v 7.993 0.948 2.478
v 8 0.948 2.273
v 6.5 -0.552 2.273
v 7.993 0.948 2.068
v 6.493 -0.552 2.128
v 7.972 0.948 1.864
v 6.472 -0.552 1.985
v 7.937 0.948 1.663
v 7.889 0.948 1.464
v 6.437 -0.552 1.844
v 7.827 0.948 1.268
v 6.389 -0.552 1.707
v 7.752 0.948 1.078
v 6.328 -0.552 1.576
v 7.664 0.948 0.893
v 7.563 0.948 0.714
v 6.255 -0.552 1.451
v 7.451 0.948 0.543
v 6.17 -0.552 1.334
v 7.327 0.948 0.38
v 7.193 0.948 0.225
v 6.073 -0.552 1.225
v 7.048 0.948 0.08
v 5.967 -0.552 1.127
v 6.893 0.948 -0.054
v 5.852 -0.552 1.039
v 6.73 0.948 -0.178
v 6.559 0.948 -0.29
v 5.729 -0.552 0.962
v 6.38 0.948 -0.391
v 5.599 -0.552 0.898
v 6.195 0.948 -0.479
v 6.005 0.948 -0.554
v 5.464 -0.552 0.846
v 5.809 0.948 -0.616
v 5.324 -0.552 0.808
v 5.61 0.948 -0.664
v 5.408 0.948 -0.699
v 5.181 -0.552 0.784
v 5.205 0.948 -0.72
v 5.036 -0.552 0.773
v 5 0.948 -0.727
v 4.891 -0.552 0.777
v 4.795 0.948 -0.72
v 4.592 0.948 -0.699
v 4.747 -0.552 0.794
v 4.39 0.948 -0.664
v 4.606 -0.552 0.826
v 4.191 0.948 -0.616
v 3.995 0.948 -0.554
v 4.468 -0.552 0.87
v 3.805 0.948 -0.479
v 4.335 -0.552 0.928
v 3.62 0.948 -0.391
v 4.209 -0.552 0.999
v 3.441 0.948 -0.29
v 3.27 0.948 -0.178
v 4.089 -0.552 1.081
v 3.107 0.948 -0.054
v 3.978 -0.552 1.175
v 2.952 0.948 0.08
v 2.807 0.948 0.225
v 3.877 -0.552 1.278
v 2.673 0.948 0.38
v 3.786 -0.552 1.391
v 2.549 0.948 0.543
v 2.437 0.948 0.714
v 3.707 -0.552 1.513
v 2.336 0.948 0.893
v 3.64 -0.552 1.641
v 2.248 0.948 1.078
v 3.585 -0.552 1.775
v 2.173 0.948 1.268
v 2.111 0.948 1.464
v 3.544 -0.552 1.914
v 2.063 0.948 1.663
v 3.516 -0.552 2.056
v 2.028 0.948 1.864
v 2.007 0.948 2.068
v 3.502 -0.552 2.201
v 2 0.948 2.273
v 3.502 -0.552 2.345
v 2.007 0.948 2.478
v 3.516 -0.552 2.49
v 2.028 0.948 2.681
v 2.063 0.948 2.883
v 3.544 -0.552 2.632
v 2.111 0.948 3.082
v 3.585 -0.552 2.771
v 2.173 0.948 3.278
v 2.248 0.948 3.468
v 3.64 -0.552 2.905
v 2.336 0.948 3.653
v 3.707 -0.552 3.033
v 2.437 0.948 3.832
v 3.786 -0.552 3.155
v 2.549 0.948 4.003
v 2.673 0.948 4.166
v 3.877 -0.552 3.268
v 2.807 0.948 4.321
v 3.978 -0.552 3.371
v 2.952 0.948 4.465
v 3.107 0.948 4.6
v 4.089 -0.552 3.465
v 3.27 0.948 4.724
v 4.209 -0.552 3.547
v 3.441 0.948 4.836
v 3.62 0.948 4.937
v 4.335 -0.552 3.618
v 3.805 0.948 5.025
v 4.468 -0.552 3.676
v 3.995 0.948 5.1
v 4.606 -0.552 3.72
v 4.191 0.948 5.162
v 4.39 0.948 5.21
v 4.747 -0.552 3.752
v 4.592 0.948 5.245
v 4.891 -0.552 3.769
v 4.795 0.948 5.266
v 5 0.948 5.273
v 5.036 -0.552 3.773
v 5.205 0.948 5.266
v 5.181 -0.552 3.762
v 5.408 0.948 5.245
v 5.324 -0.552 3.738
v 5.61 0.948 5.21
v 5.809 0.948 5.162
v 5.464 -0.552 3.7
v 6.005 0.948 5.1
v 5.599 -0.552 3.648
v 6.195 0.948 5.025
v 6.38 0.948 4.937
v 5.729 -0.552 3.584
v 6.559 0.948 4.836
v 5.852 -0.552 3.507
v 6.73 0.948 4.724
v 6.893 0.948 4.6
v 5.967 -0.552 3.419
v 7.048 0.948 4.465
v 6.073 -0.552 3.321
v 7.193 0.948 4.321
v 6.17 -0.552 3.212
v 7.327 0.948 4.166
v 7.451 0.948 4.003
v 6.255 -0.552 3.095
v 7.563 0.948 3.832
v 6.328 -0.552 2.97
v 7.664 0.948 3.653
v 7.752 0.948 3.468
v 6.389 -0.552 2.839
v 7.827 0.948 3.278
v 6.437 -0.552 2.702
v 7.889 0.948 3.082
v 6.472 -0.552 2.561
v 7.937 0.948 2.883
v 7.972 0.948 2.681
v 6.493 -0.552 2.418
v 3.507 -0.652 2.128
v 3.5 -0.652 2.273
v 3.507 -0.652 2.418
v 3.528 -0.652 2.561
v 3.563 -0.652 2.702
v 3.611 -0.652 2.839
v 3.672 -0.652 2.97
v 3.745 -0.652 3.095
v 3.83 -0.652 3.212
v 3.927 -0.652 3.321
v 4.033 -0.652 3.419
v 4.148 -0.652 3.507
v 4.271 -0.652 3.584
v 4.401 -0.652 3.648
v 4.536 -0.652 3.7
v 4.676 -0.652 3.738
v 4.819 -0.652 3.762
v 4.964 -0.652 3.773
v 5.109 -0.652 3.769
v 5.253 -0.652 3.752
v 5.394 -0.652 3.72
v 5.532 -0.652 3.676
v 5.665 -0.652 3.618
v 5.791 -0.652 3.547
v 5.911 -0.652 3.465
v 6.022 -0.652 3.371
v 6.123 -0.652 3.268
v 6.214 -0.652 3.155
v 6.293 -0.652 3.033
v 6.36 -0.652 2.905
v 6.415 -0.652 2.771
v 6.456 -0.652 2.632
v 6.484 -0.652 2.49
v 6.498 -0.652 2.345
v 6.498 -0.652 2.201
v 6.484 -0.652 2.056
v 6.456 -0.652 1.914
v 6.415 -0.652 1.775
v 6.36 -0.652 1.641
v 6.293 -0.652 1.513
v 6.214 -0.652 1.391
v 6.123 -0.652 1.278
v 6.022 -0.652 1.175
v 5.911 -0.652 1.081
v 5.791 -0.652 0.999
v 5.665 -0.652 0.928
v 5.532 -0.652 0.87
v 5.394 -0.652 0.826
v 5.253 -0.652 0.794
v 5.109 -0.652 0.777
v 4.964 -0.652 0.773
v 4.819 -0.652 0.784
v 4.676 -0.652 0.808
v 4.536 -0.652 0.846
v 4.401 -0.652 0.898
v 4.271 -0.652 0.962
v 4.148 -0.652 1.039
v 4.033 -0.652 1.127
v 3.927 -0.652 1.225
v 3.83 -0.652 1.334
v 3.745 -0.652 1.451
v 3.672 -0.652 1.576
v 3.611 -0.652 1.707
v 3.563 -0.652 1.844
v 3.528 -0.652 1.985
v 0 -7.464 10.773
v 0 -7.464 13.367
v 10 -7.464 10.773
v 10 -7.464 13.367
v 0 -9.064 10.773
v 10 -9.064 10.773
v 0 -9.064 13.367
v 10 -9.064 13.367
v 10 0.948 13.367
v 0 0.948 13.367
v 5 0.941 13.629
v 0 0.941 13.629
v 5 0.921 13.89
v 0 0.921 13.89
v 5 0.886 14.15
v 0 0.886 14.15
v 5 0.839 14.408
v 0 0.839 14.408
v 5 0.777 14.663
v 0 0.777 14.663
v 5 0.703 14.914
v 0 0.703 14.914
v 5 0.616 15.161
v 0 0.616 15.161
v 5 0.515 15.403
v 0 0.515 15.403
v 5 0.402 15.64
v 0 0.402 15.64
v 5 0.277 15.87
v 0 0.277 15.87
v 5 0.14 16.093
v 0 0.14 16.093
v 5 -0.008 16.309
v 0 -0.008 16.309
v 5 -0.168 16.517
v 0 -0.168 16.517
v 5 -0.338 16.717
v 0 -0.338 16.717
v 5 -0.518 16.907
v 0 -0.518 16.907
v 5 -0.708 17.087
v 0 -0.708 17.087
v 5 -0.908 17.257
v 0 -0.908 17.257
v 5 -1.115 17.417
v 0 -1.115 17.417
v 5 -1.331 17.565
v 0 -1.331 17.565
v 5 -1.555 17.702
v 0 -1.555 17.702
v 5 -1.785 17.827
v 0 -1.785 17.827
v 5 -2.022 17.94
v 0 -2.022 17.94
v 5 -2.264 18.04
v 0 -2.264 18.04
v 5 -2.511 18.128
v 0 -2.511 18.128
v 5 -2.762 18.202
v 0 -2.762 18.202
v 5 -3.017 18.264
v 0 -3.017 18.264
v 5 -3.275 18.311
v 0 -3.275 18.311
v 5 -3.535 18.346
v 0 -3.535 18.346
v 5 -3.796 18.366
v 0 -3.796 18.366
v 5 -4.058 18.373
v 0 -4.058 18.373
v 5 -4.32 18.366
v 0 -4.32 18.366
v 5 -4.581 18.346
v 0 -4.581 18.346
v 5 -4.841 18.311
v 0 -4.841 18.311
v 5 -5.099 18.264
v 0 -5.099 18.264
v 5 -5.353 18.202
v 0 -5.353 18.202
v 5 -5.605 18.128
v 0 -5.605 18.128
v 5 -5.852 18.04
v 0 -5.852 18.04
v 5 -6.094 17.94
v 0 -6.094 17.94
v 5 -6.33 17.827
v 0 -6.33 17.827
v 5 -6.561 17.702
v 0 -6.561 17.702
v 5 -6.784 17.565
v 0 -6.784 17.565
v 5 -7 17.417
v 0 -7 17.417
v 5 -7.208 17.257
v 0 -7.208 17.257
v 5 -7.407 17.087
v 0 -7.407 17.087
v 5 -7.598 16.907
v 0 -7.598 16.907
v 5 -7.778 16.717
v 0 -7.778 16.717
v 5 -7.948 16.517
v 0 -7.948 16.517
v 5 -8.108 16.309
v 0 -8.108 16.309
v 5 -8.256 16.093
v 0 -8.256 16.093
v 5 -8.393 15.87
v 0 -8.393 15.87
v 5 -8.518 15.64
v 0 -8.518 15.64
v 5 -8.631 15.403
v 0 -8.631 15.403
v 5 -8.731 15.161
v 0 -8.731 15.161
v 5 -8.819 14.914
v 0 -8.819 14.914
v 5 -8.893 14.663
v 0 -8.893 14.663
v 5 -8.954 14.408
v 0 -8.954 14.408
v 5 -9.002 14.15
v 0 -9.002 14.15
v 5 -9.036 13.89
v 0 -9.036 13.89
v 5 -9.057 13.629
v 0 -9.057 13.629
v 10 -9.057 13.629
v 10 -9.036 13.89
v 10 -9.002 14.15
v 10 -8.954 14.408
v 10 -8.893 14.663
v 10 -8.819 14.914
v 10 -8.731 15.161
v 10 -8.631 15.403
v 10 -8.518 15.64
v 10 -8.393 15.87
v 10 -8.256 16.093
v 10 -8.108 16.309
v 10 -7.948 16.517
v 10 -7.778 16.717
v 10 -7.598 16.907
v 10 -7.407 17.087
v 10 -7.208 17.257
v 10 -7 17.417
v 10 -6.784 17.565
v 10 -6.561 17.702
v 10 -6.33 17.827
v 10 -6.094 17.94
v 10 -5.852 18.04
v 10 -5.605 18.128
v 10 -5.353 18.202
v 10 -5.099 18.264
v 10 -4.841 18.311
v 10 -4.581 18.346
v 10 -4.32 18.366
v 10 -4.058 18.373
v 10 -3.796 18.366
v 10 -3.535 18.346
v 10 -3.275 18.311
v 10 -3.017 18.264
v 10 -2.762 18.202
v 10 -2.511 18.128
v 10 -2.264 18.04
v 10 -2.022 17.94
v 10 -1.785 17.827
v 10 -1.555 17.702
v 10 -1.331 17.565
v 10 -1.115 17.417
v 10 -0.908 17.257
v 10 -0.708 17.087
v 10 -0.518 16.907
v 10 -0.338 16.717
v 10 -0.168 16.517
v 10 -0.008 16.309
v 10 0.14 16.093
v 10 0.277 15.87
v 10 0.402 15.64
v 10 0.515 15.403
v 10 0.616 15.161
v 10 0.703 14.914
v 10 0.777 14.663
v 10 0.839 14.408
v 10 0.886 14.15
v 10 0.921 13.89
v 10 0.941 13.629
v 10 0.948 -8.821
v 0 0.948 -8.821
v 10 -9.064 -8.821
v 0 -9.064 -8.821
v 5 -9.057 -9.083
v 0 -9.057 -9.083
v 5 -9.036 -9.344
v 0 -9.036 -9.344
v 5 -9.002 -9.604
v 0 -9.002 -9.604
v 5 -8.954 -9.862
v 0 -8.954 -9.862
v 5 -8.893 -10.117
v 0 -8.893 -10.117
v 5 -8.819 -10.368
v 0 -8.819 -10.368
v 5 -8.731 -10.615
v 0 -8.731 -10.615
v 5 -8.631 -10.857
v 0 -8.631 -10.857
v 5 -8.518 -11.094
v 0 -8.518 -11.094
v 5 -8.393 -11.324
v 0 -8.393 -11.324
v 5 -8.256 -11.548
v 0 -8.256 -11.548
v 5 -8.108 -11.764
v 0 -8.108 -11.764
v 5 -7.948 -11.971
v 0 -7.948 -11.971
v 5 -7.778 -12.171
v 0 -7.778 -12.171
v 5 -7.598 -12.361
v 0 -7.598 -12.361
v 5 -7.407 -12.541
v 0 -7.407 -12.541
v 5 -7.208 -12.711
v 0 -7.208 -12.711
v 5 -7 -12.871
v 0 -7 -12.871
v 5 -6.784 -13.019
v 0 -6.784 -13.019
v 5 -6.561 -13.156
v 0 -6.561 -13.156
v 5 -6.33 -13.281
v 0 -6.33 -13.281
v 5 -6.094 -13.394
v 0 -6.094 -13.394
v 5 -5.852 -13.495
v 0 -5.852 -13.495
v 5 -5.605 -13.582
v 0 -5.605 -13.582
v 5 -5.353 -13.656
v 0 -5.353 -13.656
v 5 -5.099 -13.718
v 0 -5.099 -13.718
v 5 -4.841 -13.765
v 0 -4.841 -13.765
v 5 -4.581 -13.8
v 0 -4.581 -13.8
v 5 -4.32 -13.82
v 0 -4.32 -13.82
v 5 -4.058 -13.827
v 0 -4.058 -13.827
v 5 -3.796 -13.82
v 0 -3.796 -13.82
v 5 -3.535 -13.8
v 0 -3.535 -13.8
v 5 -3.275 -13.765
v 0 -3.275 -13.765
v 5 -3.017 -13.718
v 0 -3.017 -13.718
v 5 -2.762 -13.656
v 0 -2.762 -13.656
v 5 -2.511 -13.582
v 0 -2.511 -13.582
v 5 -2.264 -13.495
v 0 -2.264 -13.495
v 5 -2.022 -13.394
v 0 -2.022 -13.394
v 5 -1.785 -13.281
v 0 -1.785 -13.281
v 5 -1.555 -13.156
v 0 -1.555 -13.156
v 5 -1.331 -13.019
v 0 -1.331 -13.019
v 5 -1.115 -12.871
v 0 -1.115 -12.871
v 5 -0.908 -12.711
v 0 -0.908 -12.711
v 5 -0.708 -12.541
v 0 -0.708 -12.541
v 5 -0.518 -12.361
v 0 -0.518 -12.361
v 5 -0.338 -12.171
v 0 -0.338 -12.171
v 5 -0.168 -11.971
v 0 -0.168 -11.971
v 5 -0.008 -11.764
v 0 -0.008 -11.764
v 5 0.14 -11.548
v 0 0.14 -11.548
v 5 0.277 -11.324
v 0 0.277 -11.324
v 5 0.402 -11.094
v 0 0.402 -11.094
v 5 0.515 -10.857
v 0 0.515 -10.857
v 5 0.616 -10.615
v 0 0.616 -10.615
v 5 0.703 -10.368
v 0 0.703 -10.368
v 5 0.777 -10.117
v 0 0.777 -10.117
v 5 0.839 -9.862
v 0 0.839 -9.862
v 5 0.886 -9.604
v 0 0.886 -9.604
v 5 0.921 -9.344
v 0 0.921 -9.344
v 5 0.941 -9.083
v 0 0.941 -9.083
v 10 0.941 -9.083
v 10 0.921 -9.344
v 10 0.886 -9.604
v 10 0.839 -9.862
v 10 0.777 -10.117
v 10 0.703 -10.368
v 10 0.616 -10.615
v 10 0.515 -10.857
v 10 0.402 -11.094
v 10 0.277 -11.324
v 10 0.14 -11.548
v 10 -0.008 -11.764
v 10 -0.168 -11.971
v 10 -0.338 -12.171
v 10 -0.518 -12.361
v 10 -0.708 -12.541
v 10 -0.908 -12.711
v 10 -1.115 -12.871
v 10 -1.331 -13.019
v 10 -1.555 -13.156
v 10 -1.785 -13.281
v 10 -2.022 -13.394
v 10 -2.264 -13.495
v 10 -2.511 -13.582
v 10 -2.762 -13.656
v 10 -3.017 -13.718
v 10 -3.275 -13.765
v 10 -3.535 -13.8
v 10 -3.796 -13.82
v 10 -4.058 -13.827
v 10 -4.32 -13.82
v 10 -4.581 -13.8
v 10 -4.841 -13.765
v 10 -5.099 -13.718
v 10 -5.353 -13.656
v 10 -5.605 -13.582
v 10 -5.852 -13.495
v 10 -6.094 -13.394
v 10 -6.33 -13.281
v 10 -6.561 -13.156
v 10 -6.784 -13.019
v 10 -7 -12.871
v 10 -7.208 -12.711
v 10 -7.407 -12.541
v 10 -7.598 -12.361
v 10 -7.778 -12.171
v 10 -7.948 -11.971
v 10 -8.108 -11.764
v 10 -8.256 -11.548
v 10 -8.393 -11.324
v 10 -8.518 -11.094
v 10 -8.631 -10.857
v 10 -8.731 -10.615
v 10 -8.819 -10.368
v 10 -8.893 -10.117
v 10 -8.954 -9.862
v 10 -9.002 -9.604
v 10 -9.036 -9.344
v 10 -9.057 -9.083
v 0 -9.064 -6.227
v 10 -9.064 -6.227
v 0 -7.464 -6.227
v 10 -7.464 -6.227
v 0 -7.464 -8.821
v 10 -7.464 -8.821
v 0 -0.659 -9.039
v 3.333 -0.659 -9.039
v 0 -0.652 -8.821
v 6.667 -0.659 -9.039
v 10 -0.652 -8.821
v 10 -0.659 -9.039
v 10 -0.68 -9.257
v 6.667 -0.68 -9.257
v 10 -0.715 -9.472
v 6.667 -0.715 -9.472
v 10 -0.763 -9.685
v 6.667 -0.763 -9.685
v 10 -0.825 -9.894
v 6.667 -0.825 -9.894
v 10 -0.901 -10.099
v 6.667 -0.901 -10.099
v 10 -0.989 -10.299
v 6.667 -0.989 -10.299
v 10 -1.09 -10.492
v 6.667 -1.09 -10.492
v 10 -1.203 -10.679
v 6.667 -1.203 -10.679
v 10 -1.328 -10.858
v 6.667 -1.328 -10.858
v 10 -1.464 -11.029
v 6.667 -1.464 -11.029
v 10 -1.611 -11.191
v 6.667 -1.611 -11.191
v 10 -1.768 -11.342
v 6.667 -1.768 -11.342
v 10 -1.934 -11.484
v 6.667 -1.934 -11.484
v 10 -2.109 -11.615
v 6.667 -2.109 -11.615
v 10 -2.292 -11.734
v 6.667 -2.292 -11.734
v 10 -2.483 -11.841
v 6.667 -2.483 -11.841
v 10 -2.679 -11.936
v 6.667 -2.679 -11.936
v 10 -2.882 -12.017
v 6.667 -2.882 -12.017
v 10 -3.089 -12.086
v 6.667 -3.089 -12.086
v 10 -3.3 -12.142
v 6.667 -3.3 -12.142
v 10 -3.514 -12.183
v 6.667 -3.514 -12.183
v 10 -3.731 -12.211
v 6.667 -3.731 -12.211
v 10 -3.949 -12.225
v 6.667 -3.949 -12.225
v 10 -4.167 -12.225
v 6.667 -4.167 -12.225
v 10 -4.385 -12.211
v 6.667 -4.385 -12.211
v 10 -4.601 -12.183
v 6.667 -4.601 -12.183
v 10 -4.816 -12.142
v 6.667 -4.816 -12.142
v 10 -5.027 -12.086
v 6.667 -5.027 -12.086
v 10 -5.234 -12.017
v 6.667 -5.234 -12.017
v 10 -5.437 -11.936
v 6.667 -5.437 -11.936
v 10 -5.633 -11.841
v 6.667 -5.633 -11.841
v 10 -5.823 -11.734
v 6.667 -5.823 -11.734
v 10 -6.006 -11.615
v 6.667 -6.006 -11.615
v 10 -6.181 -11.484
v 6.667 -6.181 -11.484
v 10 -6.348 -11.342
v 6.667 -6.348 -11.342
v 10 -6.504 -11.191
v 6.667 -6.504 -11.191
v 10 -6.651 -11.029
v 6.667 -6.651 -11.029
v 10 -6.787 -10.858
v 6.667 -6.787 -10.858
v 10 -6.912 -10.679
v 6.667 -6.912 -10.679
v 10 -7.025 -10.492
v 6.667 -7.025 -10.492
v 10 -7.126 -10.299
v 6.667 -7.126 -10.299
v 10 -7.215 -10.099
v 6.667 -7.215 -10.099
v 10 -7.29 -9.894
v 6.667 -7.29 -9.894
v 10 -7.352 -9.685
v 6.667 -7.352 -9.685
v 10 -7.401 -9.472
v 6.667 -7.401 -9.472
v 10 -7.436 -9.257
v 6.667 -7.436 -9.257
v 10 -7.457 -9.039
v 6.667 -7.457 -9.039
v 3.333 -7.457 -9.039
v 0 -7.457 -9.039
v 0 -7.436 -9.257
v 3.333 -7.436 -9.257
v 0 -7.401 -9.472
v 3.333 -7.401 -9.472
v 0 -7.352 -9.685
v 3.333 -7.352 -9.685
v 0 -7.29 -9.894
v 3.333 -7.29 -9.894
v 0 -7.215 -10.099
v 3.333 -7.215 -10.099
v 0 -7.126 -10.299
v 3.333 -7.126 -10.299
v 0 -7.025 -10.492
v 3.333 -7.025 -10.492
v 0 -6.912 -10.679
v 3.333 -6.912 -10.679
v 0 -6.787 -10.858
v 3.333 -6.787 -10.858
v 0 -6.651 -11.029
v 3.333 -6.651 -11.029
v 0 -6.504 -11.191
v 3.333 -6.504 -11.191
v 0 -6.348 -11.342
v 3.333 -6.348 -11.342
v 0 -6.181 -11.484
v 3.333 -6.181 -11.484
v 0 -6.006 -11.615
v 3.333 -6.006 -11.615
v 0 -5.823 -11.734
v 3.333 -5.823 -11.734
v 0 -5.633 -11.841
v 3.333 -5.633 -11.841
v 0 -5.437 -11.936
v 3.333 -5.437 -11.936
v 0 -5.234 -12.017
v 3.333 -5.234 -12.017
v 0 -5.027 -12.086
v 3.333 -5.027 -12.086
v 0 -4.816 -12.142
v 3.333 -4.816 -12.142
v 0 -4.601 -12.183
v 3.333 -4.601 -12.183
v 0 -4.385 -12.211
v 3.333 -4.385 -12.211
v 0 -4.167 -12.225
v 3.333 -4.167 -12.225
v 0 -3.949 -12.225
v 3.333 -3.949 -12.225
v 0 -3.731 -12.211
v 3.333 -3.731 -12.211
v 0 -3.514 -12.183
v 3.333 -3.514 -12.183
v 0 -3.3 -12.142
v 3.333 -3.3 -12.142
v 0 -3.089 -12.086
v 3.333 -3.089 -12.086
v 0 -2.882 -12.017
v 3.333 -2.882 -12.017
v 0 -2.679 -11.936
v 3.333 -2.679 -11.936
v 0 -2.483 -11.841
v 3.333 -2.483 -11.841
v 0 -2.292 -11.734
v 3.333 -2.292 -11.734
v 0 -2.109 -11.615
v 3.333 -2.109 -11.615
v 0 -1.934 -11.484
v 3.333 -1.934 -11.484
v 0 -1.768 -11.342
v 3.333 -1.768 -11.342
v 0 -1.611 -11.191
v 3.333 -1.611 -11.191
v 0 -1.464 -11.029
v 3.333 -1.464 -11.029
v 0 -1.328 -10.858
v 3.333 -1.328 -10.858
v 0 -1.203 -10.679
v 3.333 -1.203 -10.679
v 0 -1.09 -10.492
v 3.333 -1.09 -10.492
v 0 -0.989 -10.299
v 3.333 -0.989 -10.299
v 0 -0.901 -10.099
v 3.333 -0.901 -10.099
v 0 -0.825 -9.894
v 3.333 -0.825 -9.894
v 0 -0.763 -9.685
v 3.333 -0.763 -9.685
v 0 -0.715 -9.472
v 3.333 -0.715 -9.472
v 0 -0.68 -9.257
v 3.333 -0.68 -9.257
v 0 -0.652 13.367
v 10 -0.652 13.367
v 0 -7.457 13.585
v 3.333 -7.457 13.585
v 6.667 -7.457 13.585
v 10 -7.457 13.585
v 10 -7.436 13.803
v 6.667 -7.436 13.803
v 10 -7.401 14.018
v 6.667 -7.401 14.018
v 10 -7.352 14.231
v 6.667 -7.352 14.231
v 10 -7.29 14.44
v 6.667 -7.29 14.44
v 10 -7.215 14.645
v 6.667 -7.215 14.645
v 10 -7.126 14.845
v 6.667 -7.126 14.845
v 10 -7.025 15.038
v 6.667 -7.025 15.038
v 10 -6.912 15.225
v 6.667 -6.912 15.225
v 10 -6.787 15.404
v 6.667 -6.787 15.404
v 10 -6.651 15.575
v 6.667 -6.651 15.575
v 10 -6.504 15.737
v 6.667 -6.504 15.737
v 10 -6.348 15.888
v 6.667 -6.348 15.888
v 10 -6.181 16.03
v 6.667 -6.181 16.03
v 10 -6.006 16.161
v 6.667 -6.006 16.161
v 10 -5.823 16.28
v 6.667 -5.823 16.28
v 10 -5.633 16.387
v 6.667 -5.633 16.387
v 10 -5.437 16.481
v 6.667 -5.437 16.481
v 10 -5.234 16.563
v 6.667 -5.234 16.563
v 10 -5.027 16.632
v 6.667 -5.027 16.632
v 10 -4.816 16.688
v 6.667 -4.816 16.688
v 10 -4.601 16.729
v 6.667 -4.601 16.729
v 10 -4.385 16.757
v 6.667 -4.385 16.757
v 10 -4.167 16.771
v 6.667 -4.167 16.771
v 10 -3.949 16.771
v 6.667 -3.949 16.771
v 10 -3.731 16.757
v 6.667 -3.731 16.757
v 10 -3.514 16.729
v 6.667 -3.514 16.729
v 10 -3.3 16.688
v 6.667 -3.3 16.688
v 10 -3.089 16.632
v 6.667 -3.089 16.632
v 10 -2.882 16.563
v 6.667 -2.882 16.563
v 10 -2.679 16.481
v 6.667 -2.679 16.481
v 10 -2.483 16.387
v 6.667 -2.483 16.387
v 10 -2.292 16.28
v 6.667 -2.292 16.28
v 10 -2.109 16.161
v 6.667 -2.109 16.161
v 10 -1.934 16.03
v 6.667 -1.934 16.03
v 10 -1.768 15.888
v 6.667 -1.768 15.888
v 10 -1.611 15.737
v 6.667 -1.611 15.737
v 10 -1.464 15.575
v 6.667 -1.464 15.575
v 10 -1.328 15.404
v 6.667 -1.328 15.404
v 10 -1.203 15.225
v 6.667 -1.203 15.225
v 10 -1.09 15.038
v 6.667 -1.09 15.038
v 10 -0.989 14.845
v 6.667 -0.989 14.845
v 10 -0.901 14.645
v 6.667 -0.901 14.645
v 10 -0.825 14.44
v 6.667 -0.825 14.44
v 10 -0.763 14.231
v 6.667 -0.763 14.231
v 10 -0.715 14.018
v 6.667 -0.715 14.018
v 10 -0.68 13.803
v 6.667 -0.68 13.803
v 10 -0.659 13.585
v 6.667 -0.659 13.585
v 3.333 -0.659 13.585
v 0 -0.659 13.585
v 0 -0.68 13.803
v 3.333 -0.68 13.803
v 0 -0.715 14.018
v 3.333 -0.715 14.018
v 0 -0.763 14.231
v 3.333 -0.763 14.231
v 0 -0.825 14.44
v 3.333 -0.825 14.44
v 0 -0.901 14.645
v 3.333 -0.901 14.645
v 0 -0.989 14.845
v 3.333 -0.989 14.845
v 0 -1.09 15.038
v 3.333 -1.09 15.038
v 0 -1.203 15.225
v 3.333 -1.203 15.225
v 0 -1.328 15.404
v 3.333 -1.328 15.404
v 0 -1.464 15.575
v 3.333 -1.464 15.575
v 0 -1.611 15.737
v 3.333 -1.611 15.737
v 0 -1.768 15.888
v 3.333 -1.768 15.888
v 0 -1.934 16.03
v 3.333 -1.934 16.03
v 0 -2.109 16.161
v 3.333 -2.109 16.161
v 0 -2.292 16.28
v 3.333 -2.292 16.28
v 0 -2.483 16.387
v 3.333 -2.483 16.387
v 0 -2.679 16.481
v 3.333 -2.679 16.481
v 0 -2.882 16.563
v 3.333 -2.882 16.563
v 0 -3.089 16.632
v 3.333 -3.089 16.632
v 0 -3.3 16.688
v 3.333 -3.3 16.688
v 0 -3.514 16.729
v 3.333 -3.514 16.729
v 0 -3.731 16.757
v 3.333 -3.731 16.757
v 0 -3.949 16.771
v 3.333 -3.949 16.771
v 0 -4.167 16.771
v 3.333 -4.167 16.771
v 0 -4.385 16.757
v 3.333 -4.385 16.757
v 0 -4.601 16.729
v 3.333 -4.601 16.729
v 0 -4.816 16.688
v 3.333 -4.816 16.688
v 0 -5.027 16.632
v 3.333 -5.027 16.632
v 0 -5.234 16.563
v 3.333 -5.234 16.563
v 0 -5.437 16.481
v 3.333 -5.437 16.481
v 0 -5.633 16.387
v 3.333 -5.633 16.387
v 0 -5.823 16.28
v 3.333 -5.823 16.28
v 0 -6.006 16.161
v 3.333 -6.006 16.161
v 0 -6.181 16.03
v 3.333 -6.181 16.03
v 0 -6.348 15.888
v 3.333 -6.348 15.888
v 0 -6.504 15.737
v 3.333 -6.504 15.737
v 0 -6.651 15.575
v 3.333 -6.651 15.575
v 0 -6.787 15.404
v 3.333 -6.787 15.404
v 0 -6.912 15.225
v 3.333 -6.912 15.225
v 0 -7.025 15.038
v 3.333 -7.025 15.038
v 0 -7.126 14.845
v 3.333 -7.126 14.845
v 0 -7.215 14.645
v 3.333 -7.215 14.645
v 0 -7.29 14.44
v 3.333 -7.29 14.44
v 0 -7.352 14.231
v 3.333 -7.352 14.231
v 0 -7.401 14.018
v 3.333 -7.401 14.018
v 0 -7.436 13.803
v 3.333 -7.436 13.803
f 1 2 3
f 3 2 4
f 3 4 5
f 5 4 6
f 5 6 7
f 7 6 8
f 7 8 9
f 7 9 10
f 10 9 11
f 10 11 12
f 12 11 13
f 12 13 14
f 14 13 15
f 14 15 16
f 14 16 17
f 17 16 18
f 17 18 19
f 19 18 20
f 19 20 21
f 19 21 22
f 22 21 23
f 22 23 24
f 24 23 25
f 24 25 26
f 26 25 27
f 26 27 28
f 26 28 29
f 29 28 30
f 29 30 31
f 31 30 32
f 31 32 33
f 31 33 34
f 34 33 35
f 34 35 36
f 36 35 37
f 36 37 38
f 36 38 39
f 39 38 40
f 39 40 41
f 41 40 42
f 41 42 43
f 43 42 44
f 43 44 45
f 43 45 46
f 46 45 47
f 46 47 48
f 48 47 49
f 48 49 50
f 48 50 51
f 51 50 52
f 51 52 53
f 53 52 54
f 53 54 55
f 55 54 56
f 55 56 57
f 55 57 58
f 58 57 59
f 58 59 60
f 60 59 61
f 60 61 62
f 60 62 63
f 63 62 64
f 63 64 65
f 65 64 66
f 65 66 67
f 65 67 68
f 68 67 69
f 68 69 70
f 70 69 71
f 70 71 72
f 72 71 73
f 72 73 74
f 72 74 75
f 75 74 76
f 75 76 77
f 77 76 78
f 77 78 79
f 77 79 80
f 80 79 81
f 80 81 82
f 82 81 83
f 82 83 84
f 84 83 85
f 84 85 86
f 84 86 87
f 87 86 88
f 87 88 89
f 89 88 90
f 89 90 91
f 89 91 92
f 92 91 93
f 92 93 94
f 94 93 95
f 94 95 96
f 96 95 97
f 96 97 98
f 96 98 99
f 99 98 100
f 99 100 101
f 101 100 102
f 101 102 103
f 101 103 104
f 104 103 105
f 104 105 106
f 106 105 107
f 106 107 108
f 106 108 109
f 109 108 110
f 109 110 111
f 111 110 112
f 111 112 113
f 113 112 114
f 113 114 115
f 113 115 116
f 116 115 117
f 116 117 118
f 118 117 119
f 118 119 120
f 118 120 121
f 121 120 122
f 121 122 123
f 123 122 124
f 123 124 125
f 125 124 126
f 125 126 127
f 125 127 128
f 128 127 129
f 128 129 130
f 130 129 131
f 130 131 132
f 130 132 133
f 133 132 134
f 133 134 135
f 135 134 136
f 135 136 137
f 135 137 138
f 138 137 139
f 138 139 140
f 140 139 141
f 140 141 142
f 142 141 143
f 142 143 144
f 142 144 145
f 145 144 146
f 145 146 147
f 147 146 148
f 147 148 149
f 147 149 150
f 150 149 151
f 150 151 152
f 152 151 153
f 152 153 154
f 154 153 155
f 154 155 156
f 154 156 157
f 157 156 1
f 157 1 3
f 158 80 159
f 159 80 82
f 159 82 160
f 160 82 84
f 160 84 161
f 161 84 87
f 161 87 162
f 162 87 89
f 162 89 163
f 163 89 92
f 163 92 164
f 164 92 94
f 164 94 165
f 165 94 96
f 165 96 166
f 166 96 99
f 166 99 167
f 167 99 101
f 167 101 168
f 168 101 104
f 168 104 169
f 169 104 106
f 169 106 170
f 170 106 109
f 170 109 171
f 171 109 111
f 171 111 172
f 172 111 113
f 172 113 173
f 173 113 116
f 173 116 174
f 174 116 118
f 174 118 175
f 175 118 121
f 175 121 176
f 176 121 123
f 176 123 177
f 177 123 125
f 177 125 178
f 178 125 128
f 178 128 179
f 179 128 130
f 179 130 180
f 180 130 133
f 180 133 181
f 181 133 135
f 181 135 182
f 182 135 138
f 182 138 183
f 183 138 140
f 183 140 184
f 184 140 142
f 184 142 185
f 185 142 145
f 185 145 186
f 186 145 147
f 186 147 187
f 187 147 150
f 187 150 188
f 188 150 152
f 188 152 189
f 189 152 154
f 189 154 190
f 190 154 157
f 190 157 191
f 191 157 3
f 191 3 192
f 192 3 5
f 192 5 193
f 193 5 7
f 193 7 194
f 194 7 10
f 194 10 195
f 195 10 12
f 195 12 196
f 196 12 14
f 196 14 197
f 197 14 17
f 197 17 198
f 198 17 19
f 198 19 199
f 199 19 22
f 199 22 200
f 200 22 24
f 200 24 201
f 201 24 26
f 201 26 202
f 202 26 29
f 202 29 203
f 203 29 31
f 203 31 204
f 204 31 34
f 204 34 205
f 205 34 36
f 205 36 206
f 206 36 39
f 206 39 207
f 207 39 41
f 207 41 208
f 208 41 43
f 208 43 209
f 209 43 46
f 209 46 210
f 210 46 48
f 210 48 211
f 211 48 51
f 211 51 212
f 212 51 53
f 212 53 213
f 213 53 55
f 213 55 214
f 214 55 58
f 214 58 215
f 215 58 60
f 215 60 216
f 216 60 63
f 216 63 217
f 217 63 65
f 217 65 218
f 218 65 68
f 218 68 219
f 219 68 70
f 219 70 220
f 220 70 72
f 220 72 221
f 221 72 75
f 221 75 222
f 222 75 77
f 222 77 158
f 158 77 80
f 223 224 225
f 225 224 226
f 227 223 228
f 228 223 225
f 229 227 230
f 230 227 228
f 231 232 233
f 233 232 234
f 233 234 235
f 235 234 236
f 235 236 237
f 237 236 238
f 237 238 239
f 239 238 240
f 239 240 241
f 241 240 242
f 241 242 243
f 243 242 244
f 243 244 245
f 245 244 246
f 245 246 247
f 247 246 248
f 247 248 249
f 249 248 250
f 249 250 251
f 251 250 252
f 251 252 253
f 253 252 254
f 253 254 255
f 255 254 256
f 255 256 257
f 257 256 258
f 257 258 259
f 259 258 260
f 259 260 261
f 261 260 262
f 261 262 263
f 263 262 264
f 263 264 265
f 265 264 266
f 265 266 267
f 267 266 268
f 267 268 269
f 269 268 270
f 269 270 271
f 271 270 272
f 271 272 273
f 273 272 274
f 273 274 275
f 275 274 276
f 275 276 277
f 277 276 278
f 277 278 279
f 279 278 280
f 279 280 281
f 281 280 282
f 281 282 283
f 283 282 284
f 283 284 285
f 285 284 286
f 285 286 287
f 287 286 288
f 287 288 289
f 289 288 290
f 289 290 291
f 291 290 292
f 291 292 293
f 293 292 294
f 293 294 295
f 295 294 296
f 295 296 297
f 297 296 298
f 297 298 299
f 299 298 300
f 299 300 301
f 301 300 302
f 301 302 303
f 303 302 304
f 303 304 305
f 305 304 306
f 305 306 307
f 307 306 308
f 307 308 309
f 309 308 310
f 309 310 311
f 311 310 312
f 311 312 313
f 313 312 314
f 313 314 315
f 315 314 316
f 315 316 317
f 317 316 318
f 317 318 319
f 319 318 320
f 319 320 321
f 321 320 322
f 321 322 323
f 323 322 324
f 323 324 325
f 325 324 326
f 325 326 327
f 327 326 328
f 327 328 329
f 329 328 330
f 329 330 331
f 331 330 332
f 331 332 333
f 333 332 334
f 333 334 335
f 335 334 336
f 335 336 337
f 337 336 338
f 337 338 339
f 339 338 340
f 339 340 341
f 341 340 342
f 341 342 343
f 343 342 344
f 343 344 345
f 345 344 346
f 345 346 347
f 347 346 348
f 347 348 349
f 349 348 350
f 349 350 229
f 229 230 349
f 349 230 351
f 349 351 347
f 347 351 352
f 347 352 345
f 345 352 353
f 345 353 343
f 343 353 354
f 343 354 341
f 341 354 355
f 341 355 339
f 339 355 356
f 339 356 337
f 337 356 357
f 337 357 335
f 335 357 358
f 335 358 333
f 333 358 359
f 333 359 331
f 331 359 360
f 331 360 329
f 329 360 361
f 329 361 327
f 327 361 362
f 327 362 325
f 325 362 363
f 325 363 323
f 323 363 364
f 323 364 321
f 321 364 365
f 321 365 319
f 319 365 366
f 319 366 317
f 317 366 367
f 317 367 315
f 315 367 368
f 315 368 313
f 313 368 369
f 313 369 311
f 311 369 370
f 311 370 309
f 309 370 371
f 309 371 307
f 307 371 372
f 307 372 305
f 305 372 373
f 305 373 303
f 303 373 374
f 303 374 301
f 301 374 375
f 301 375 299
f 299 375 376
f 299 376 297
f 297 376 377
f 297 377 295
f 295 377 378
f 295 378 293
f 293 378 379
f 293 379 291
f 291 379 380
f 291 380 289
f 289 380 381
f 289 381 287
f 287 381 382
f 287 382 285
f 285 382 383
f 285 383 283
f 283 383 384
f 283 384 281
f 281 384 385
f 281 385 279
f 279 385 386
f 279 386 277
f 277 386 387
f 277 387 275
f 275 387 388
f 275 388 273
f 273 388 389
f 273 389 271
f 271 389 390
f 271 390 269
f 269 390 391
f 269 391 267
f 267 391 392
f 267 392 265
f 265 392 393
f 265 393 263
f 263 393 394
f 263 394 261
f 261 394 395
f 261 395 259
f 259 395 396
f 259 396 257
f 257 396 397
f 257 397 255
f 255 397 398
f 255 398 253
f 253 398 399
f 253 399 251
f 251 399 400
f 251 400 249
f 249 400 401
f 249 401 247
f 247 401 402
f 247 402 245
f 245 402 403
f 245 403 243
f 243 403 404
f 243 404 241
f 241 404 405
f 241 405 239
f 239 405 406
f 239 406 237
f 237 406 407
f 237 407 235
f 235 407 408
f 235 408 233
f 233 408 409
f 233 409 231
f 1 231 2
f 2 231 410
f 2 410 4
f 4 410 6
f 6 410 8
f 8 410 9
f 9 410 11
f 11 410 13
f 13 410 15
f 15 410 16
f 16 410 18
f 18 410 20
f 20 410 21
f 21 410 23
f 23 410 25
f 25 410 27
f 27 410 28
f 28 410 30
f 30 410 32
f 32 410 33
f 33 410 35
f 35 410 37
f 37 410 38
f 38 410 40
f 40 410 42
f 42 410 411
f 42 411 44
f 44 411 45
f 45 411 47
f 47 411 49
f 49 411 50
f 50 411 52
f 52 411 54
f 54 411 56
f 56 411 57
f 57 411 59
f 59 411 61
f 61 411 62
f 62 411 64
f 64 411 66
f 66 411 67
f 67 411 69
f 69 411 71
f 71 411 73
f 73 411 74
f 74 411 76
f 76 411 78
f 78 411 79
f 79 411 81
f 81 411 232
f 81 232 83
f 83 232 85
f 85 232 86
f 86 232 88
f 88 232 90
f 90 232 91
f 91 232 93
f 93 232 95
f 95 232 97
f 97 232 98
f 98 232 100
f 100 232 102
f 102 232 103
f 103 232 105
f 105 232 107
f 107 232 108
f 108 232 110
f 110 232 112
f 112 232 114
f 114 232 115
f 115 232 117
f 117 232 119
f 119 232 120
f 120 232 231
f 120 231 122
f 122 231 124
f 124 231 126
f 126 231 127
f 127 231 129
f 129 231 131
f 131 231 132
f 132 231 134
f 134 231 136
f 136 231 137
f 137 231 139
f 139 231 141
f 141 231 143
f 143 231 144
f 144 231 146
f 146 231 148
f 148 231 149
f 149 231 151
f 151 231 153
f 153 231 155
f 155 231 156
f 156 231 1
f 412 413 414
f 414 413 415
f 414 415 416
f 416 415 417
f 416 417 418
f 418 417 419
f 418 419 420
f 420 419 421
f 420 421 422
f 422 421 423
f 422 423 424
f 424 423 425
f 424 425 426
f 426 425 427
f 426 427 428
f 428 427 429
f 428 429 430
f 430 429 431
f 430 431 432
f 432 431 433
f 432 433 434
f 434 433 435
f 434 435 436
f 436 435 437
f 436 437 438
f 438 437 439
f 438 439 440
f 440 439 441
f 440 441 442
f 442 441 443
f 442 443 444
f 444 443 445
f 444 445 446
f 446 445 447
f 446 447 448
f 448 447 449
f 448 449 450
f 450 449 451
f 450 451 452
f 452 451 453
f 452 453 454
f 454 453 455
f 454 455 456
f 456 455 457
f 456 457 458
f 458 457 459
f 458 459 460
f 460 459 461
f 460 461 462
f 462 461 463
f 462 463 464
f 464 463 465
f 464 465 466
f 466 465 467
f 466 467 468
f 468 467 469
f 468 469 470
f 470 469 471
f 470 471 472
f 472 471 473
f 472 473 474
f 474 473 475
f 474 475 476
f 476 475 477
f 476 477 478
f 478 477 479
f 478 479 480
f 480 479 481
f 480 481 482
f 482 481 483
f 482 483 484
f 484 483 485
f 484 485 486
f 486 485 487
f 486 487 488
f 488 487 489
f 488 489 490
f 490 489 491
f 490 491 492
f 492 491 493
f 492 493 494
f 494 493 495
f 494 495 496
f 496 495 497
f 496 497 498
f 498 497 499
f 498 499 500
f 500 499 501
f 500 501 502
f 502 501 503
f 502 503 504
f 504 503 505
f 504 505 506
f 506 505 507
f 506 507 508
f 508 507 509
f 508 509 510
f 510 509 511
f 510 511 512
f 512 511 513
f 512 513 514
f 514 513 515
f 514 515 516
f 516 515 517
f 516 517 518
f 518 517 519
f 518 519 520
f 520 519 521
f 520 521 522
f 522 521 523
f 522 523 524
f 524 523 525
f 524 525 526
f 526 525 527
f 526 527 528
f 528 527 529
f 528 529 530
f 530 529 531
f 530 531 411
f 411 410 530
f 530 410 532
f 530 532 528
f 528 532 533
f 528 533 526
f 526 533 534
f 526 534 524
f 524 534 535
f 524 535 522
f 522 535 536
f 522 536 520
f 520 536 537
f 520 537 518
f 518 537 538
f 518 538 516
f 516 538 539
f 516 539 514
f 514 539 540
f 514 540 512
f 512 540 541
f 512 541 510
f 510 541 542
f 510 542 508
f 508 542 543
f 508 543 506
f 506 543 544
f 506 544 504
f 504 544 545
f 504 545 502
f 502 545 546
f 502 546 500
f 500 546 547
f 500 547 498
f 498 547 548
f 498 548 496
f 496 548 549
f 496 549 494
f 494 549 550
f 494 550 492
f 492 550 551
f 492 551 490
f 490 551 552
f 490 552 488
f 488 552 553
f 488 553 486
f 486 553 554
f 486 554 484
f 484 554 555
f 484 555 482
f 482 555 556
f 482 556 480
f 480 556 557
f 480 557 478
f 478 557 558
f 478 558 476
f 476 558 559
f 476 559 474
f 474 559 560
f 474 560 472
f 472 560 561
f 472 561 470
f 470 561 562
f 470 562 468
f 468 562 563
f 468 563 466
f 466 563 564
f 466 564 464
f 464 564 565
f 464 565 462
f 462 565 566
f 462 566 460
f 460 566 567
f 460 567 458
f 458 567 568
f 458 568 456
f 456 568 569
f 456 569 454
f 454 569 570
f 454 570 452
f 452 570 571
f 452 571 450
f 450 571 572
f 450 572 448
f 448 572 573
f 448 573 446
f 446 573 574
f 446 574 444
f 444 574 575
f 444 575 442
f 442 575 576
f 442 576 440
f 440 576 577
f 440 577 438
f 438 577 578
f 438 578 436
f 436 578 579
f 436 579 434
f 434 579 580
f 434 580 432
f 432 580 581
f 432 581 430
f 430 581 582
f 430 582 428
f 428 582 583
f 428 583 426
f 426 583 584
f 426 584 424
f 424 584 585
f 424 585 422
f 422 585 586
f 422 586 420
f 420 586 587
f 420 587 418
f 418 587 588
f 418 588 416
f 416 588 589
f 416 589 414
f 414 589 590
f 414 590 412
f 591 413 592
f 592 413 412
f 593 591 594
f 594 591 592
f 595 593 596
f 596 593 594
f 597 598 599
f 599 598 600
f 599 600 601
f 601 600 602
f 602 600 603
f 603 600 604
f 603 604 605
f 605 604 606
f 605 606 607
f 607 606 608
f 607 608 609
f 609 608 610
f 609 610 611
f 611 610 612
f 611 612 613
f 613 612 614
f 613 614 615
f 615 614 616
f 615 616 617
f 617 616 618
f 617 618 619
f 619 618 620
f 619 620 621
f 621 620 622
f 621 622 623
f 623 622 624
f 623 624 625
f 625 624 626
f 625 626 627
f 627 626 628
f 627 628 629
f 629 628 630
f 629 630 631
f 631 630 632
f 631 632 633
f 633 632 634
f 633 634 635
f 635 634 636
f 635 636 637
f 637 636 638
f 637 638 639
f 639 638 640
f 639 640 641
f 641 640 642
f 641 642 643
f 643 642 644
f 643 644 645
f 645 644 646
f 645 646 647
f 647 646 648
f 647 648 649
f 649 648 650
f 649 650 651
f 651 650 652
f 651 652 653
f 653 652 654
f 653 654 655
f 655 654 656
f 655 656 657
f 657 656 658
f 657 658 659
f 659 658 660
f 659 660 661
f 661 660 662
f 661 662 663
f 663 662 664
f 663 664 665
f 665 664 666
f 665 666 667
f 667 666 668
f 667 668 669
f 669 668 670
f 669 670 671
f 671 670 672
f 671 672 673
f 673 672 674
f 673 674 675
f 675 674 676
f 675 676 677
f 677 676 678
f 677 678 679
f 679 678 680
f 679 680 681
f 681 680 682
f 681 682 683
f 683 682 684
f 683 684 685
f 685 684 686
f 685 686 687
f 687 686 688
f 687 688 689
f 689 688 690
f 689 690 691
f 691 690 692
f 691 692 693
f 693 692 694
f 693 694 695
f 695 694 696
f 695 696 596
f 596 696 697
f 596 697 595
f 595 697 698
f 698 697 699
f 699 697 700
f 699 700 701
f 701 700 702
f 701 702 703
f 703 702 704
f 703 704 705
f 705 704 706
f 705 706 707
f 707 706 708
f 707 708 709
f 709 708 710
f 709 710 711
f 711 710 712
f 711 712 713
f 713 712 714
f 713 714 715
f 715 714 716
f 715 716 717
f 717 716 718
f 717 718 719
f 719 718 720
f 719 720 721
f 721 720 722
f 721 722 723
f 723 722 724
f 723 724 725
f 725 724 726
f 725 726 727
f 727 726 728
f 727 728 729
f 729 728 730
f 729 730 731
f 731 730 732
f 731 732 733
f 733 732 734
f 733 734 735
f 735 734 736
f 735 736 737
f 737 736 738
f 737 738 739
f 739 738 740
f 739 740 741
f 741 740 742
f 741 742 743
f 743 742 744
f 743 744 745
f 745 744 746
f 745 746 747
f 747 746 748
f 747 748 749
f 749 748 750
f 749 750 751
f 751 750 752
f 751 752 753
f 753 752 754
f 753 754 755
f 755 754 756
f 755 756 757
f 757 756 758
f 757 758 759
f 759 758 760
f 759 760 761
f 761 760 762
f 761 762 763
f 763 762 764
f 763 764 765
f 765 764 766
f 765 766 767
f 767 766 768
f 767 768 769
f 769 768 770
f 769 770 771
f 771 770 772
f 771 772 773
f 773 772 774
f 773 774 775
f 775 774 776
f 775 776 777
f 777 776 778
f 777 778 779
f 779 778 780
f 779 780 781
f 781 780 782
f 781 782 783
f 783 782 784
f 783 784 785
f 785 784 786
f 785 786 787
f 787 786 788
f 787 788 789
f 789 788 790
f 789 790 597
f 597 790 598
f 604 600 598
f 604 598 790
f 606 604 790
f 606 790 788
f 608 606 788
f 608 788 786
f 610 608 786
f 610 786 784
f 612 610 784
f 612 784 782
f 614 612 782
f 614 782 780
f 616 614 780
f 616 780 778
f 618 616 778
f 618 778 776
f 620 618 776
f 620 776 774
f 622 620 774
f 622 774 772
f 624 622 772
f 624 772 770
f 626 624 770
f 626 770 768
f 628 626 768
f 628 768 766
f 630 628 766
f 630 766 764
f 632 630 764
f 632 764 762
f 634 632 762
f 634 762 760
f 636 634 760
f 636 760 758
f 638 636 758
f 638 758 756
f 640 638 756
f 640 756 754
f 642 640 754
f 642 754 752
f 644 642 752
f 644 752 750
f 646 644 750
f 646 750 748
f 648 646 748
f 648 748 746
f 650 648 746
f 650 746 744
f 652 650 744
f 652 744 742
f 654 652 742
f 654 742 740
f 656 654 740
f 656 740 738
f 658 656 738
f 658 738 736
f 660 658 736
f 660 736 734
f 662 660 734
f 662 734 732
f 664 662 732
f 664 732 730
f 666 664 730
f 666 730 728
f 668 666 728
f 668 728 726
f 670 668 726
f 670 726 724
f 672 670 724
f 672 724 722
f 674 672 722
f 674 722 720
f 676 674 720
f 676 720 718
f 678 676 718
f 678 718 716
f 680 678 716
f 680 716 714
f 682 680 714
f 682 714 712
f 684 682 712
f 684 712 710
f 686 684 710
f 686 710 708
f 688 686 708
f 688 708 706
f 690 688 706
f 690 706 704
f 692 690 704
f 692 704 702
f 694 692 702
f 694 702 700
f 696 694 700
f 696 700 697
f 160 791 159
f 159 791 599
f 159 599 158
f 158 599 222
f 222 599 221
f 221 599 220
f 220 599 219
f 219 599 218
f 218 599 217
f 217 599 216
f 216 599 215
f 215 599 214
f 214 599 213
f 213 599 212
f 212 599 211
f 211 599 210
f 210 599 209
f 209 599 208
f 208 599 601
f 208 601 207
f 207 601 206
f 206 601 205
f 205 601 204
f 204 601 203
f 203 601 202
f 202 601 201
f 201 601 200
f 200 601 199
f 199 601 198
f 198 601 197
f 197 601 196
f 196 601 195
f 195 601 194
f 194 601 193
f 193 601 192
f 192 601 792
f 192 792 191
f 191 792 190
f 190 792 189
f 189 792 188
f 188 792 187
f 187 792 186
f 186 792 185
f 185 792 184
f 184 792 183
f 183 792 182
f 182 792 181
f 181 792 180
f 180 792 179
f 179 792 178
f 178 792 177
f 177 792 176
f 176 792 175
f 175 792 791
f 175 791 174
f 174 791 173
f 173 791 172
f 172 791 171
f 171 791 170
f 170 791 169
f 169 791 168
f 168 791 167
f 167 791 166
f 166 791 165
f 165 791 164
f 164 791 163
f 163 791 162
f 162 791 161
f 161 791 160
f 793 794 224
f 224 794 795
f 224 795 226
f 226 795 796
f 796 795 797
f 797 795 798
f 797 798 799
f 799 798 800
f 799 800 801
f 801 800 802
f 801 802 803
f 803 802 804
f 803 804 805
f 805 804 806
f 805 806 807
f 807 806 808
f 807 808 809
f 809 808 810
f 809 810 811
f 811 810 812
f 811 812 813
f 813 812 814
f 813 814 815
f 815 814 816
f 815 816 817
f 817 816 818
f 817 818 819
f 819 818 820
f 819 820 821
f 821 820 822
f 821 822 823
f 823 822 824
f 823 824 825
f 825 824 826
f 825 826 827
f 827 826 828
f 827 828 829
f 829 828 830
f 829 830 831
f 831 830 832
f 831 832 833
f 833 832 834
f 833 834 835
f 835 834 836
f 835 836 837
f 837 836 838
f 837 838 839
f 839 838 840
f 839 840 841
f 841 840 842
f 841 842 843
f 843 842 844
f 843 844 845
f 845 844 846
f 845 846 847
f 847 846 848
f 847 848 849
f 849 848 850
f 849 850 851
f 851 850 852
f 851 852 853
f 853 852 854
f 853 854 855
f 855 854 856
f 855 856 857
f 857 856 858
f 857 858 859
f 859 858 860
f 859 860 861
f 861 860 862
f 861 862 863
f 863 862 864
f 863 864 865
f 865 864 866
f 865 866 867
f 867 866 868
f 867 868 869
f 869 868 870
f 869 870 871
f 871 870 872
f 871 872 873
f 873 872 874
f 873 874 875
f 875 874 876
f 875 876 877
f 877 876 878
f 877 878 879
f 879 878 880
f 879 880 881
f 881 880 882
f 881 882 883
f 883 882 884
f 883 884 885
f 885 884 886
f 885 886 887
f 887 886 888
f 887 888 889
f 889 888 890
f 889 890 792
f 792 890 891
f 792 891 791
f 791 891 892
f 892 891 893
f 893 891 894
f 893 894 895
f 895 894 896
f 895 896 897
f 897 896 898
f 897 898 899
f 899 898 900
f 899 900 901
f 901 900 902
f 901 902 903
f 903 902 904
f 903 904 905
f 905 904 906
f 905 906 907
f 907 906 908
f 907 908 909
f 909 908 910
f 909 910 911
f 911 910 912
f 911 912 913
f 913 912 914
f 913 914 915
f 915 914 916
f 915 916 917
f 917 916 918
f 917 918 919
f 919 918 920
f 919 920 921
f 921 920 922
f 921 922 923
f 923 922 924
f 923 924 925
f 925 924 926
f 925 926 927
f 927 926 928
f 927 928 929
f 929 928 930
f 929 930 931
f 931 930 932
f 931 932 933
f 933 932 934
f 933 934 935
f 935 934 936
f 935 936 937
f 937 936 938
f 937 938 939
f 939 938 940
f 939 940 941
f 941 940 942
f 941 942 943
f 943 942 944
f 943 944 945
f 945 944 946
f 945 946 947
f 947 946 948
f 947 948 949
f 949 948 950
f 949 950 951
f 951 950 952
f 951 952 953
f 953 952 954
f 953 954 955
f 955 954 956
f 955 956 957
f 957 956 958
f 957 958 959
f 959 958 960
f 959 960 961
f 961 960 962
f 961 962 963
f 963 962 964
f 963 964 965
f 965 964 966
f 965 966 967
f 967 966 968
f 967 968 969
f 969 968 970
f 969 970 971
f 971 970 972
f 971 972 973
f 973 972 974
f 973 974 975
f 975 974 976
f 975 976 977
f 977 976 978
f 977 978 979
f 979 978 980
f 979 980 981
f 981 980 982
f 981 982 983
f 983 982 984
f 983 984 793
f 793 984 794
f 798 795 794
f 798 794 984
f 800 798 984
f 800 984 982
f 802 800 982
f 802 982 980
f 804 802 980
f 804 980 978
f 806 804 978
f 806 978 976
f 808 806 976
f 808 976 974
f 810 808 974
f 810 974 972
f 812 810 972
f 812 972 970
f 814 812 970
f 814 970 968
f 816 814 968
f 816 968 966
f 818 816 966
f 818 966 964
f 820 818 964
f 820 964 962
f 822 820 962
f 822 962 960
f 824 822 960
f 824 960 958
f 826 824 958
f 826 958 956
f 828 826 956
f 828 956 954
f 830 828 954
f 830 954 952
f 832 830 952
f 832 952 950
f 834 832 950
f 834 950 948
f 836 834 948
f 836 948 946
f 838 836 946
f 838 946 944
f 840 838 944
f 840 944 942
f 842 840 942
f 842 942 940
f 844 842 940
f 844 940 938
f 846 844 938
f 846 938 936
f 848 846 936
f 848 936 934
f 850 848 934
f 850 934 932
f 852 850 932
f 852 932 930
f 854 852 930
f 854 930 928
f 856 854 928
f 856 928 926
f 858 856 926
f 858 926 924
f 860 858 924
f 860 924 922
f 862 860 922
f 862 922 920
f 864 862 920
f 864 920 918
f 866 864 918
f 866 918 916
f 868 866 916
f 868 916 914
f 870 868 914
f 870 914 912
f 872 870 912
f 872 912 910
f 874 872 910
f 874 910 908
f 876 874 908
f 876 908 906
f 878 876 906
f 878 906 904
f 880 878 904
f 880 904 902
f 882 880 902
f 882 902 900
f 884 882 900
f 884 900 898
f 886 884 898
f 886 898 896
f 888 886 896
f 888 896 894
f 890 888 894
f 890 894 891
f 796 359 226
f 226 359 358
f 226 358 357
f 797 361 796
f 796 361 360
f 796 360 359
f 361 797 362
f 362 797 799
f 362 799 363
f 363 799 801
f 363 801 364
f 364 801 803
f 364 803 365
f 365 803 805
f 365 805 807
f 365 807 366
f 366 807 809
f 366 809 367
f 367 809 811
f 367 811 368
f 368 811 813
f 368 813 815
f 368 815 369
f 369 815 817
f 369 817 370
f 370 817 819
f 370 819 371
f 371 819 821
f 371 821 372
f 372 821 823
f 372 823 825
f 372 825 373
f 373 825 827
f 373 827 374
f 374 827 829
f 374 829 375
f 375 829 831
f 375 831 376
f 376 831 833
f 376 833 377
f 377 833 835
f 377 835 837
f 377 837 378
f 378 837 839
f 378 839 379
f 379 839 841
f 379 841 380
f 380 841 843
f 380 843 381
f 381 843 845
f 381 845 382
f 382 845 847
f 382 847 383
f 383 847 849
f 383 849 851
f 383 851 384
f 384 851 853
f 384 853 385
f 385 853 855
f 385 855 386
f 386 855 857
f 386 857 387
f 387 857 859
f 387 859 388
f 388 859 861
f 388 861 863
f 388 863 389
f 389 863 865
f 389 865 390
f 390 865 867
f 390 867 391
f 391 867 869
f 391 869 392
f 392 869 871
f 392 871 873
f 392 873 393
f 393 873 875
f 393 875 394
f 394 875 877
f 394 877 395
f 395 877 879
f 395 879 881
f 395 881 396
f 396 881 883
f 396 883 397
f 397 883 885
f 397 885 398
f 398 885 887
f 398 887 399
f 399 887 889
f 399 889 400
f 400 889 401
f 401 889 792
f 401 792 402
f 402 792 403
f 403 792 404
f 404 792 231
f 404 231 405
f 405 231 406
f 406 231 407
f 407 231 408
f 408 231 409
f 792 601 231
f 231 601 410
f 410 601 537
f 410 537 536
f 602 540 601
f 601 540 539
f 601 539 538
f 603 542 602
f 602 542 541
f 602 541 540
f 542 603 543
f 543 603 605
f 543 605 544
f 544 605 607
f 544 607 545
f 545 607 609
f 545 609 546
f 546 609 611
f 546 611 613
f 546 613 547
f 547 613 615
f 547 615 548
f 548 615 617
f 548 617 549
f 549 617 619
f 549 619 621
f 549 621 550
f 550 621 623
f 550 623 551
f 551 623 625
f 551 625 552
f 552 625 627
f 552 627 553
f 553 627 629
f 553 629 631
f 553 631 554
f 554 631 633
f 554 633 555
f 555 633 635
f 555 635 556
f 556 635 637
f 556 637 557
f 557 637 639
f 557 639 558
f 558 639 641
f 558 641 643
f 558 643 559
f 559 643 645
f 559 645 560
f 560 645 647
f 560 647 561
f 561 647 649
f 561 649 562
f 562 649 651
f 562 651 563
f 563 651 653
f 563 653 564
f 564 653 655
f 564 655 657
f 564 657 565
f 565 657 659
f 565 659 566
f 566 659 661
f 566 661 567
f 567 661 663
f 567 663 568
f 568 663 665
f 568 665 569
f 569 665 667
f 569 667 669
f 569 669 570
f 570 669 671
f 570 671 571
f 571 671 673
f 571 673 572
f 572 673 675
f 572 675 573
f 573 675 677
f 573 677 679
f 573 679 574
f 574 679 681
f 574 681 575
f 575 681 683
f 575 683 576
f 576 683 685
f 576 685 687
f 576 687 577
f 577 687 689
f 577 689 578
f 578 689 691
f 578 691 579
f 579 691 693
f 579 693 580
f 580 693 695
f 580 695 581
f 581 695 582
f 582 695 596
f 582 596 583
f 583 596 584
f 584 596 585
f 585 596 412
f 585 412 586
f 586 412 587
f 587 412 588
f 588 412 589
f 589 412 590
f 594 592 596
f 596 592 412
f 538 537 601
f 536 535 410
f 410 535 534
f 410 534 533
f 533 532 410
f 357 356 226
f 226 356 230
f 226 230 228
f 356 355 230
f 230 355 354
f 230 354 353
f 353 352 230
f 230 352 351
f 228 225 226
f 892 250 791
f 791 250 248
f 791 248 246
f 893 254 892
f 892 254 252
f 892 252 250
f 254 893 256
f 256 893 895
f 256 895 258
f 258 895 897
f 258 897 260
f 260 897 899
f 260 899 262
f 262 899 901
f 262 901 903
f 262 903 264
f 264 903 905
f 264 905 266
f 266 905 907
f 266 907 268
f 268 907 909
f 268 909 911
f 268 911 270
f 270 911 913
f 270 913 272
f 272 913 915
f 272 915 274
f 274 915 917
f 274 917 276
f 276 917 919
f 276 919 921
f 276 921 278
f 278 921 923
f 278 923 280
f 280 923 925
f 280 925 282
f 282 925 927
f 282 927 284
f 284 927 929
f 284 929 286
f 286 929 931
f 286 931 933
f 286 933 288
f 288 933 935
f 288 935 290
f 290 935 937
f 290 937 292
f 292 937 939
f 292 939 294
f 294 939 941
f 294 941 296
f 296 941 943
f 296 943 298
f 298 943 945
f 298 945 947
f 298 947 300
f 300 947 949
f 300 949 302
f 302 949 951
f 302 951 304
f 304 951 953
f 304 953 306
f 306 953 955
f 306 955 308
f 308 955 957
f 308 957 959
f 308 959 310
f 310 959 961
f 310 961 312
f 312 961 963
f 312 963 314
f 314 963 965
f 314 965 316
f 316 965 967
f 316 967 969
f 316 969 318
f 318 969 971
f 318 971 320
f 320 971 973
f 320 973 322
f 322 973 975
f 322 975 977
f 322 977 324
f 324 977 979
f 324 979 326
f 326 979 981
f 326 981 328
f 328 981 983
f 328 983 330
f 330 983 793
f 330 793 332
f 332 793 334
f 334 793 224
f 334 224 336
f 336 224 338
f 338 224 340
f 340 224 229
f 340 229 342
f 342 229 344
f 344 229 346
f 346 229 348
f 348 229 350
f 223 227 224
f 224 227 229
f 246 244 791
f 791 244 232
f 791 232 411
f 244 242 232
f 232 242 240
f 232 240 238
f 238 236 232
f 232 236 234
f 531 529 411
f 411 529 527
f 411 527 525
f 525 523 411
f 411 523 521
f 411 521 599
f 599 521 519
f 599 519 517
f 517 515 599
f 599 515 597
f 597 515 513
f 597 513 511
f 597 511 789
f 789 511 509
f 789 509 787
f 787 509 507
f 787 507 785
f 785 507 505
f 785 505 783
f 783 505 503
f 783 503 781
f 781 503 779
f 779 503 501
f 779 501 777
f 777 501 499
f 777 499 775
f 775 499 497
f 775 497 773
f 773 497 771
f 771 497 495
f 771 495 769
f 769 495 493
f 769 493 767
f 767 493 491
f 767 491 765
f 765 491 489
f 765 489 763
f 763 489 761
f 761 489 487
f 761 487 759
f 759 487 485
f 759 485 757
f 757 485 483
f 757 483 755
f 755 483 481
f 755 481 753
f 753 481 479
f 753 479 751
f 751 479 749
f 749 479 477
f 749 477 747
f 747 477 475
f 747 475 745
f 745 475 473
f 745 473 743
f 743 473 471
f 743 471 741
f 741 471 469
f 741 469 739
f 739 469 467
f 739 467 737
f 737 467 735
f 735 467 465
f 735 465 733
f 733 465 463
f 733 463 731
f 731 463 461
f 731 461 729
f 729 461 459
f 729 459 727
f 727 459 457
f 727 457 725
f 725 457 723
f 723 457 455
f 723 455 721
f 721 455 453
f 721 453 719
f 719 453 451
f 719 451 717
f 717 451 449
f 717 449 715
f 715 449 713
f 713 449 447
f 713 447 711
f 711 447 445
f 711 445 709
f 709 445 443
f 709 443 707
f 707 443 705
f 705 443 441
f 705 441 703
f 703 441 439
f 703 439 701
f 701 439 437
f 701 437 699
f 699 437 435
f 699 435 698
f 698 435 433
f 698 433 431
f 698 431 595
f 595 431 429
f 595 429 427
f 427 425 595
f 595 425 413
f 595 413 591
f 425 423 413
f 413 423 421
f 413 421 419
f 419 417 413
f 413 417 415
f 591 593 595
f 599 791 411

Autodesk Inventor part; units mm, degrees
ref_plane "YZ Plane" through (0, 0, 0) normal (1, 0, 0) x (0, 1, 0)
ref_plane "XZ Plane" through (0, 0, 0) normal (0, 1, 0) x (-1, 0, 0)
ref_plane "XY Plane" through (0, 0, 0) normal (0, 0, 1) x (1, 0, 0)
sketch "Sketch1" plane through (0, 0, 0) normal (1, 0, 0) x (0, 1, 0)
  line L0 (-7.4638, 10.773) -> (-7.4638, 13.3671)
  line L1 (-0.652, 13.3671) -> (-0.652, 10.773)
  arc A0 (-0.652, 13.3671) -> (-7.4638, 13.3671) centre (-4.0579, 13.3671) ccw
  line L2 (0.948, 10.773) -> (0.948, 13.3671)
  arc A1 (0.948, 13.3671) -> (-9.0638, 13.3671) centre (-4.0579, 13.3671) ccw
  line L3 (-9.0638, 13.3671) -> (-9.0638, 10.773)
  line L4 (-9.0638, 10.773) -> (-7.4638, 10.773)
  line L5 (-0.652, 10.773) -> (-0.652, -6.227)
  line L6 (-4.0579, 16.773) -> (-4.0579, 10.773)
  line L7 (0.948, 10.773) -> (0.948, -6.227)
  line L8 (-0.652, 2.273) -> (-9.3077, 2.273)
  line L9 (-7.4638, -6.227) -> (-7.4638, -8.8211)
  line L10 (-0.652, -8.8211) -> (-0.652, -6.227)
  arc A2 (-7.4638, -8.8211) -> (-0.652, -8.8211) centre (-4.0579, -8.8211) ccw
  line L11 (0.948, -6.227) -> (0.948, -8.8211)
  arc A3 (-9.0638, -8.8211) -> (0.948, -8.8211) centre (-4.0579, -8.8211) ccw
  line L12 (-9.0638, -8.8211) -> (-9.0638, -6.227)
  line L13 (0.948, -6.227) -> (0.948, 10.773)
  line L14 (-9.0638, -6.227) -> (-7.4638, -6.227)
  point P0 (0, 0)
  point P1 (0.948, -6.227)
  dimension "d3" = 1.6
  dimension "d4" = 17
  dimension "d5" = 6
extrude "Extrusion1" add sketch "Sketch1" along normal blind 10
sketch "Sketch2" plane through (0, 0.948, 13.3671) normal (0, 1, 0) x (1, 0, 0)
  line L0 (0, 22.1882) -> (0, 0) projected
  line L1 (0, 0) -> (10, 0) projected
  line L2 (10, 22.1882) -> (10, 0) projected
  line L3 (0, 22.1882) -> (10, 22.1882) projected
  point P0 (0, 13.3671)
  point P1 (5, 11.0941)
  point P2 (0, 11.0941)
  point P3 (5, 0)
hole "Hole1" at (5, 0.948, 2.273) direction (0, -1, 0) diameter 3 end through all countersink diameter 6 countersink angle 90
properties part number "klips"
